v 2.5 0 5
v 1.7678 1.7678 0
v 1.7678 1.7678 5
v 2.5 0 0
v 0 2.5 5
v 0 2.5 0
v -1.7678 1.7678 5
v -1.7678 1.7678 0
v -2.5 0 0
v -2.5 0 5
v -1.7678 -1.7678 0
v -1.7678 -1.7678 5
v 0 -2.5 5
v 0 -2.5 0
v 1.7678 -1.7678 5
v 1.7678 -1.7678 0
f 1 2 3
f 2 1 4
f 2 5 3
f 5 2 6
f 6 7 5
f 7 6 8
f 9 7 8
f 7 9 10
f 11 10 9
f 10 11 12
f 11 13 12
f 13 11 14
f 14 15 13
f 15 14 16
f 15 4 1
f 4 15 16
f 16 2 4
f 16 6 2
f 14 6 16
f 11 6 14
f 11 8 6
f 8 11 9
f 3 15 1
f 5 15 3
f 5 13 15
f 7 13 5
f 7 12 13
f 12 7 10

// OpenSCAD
difference() {
    cylinder(d=5,h=5,$fn=8);

    /*translate([0,0,-1]) {
        cylinder(d=2.9,h=10,$fn=64);
    }*/
}
